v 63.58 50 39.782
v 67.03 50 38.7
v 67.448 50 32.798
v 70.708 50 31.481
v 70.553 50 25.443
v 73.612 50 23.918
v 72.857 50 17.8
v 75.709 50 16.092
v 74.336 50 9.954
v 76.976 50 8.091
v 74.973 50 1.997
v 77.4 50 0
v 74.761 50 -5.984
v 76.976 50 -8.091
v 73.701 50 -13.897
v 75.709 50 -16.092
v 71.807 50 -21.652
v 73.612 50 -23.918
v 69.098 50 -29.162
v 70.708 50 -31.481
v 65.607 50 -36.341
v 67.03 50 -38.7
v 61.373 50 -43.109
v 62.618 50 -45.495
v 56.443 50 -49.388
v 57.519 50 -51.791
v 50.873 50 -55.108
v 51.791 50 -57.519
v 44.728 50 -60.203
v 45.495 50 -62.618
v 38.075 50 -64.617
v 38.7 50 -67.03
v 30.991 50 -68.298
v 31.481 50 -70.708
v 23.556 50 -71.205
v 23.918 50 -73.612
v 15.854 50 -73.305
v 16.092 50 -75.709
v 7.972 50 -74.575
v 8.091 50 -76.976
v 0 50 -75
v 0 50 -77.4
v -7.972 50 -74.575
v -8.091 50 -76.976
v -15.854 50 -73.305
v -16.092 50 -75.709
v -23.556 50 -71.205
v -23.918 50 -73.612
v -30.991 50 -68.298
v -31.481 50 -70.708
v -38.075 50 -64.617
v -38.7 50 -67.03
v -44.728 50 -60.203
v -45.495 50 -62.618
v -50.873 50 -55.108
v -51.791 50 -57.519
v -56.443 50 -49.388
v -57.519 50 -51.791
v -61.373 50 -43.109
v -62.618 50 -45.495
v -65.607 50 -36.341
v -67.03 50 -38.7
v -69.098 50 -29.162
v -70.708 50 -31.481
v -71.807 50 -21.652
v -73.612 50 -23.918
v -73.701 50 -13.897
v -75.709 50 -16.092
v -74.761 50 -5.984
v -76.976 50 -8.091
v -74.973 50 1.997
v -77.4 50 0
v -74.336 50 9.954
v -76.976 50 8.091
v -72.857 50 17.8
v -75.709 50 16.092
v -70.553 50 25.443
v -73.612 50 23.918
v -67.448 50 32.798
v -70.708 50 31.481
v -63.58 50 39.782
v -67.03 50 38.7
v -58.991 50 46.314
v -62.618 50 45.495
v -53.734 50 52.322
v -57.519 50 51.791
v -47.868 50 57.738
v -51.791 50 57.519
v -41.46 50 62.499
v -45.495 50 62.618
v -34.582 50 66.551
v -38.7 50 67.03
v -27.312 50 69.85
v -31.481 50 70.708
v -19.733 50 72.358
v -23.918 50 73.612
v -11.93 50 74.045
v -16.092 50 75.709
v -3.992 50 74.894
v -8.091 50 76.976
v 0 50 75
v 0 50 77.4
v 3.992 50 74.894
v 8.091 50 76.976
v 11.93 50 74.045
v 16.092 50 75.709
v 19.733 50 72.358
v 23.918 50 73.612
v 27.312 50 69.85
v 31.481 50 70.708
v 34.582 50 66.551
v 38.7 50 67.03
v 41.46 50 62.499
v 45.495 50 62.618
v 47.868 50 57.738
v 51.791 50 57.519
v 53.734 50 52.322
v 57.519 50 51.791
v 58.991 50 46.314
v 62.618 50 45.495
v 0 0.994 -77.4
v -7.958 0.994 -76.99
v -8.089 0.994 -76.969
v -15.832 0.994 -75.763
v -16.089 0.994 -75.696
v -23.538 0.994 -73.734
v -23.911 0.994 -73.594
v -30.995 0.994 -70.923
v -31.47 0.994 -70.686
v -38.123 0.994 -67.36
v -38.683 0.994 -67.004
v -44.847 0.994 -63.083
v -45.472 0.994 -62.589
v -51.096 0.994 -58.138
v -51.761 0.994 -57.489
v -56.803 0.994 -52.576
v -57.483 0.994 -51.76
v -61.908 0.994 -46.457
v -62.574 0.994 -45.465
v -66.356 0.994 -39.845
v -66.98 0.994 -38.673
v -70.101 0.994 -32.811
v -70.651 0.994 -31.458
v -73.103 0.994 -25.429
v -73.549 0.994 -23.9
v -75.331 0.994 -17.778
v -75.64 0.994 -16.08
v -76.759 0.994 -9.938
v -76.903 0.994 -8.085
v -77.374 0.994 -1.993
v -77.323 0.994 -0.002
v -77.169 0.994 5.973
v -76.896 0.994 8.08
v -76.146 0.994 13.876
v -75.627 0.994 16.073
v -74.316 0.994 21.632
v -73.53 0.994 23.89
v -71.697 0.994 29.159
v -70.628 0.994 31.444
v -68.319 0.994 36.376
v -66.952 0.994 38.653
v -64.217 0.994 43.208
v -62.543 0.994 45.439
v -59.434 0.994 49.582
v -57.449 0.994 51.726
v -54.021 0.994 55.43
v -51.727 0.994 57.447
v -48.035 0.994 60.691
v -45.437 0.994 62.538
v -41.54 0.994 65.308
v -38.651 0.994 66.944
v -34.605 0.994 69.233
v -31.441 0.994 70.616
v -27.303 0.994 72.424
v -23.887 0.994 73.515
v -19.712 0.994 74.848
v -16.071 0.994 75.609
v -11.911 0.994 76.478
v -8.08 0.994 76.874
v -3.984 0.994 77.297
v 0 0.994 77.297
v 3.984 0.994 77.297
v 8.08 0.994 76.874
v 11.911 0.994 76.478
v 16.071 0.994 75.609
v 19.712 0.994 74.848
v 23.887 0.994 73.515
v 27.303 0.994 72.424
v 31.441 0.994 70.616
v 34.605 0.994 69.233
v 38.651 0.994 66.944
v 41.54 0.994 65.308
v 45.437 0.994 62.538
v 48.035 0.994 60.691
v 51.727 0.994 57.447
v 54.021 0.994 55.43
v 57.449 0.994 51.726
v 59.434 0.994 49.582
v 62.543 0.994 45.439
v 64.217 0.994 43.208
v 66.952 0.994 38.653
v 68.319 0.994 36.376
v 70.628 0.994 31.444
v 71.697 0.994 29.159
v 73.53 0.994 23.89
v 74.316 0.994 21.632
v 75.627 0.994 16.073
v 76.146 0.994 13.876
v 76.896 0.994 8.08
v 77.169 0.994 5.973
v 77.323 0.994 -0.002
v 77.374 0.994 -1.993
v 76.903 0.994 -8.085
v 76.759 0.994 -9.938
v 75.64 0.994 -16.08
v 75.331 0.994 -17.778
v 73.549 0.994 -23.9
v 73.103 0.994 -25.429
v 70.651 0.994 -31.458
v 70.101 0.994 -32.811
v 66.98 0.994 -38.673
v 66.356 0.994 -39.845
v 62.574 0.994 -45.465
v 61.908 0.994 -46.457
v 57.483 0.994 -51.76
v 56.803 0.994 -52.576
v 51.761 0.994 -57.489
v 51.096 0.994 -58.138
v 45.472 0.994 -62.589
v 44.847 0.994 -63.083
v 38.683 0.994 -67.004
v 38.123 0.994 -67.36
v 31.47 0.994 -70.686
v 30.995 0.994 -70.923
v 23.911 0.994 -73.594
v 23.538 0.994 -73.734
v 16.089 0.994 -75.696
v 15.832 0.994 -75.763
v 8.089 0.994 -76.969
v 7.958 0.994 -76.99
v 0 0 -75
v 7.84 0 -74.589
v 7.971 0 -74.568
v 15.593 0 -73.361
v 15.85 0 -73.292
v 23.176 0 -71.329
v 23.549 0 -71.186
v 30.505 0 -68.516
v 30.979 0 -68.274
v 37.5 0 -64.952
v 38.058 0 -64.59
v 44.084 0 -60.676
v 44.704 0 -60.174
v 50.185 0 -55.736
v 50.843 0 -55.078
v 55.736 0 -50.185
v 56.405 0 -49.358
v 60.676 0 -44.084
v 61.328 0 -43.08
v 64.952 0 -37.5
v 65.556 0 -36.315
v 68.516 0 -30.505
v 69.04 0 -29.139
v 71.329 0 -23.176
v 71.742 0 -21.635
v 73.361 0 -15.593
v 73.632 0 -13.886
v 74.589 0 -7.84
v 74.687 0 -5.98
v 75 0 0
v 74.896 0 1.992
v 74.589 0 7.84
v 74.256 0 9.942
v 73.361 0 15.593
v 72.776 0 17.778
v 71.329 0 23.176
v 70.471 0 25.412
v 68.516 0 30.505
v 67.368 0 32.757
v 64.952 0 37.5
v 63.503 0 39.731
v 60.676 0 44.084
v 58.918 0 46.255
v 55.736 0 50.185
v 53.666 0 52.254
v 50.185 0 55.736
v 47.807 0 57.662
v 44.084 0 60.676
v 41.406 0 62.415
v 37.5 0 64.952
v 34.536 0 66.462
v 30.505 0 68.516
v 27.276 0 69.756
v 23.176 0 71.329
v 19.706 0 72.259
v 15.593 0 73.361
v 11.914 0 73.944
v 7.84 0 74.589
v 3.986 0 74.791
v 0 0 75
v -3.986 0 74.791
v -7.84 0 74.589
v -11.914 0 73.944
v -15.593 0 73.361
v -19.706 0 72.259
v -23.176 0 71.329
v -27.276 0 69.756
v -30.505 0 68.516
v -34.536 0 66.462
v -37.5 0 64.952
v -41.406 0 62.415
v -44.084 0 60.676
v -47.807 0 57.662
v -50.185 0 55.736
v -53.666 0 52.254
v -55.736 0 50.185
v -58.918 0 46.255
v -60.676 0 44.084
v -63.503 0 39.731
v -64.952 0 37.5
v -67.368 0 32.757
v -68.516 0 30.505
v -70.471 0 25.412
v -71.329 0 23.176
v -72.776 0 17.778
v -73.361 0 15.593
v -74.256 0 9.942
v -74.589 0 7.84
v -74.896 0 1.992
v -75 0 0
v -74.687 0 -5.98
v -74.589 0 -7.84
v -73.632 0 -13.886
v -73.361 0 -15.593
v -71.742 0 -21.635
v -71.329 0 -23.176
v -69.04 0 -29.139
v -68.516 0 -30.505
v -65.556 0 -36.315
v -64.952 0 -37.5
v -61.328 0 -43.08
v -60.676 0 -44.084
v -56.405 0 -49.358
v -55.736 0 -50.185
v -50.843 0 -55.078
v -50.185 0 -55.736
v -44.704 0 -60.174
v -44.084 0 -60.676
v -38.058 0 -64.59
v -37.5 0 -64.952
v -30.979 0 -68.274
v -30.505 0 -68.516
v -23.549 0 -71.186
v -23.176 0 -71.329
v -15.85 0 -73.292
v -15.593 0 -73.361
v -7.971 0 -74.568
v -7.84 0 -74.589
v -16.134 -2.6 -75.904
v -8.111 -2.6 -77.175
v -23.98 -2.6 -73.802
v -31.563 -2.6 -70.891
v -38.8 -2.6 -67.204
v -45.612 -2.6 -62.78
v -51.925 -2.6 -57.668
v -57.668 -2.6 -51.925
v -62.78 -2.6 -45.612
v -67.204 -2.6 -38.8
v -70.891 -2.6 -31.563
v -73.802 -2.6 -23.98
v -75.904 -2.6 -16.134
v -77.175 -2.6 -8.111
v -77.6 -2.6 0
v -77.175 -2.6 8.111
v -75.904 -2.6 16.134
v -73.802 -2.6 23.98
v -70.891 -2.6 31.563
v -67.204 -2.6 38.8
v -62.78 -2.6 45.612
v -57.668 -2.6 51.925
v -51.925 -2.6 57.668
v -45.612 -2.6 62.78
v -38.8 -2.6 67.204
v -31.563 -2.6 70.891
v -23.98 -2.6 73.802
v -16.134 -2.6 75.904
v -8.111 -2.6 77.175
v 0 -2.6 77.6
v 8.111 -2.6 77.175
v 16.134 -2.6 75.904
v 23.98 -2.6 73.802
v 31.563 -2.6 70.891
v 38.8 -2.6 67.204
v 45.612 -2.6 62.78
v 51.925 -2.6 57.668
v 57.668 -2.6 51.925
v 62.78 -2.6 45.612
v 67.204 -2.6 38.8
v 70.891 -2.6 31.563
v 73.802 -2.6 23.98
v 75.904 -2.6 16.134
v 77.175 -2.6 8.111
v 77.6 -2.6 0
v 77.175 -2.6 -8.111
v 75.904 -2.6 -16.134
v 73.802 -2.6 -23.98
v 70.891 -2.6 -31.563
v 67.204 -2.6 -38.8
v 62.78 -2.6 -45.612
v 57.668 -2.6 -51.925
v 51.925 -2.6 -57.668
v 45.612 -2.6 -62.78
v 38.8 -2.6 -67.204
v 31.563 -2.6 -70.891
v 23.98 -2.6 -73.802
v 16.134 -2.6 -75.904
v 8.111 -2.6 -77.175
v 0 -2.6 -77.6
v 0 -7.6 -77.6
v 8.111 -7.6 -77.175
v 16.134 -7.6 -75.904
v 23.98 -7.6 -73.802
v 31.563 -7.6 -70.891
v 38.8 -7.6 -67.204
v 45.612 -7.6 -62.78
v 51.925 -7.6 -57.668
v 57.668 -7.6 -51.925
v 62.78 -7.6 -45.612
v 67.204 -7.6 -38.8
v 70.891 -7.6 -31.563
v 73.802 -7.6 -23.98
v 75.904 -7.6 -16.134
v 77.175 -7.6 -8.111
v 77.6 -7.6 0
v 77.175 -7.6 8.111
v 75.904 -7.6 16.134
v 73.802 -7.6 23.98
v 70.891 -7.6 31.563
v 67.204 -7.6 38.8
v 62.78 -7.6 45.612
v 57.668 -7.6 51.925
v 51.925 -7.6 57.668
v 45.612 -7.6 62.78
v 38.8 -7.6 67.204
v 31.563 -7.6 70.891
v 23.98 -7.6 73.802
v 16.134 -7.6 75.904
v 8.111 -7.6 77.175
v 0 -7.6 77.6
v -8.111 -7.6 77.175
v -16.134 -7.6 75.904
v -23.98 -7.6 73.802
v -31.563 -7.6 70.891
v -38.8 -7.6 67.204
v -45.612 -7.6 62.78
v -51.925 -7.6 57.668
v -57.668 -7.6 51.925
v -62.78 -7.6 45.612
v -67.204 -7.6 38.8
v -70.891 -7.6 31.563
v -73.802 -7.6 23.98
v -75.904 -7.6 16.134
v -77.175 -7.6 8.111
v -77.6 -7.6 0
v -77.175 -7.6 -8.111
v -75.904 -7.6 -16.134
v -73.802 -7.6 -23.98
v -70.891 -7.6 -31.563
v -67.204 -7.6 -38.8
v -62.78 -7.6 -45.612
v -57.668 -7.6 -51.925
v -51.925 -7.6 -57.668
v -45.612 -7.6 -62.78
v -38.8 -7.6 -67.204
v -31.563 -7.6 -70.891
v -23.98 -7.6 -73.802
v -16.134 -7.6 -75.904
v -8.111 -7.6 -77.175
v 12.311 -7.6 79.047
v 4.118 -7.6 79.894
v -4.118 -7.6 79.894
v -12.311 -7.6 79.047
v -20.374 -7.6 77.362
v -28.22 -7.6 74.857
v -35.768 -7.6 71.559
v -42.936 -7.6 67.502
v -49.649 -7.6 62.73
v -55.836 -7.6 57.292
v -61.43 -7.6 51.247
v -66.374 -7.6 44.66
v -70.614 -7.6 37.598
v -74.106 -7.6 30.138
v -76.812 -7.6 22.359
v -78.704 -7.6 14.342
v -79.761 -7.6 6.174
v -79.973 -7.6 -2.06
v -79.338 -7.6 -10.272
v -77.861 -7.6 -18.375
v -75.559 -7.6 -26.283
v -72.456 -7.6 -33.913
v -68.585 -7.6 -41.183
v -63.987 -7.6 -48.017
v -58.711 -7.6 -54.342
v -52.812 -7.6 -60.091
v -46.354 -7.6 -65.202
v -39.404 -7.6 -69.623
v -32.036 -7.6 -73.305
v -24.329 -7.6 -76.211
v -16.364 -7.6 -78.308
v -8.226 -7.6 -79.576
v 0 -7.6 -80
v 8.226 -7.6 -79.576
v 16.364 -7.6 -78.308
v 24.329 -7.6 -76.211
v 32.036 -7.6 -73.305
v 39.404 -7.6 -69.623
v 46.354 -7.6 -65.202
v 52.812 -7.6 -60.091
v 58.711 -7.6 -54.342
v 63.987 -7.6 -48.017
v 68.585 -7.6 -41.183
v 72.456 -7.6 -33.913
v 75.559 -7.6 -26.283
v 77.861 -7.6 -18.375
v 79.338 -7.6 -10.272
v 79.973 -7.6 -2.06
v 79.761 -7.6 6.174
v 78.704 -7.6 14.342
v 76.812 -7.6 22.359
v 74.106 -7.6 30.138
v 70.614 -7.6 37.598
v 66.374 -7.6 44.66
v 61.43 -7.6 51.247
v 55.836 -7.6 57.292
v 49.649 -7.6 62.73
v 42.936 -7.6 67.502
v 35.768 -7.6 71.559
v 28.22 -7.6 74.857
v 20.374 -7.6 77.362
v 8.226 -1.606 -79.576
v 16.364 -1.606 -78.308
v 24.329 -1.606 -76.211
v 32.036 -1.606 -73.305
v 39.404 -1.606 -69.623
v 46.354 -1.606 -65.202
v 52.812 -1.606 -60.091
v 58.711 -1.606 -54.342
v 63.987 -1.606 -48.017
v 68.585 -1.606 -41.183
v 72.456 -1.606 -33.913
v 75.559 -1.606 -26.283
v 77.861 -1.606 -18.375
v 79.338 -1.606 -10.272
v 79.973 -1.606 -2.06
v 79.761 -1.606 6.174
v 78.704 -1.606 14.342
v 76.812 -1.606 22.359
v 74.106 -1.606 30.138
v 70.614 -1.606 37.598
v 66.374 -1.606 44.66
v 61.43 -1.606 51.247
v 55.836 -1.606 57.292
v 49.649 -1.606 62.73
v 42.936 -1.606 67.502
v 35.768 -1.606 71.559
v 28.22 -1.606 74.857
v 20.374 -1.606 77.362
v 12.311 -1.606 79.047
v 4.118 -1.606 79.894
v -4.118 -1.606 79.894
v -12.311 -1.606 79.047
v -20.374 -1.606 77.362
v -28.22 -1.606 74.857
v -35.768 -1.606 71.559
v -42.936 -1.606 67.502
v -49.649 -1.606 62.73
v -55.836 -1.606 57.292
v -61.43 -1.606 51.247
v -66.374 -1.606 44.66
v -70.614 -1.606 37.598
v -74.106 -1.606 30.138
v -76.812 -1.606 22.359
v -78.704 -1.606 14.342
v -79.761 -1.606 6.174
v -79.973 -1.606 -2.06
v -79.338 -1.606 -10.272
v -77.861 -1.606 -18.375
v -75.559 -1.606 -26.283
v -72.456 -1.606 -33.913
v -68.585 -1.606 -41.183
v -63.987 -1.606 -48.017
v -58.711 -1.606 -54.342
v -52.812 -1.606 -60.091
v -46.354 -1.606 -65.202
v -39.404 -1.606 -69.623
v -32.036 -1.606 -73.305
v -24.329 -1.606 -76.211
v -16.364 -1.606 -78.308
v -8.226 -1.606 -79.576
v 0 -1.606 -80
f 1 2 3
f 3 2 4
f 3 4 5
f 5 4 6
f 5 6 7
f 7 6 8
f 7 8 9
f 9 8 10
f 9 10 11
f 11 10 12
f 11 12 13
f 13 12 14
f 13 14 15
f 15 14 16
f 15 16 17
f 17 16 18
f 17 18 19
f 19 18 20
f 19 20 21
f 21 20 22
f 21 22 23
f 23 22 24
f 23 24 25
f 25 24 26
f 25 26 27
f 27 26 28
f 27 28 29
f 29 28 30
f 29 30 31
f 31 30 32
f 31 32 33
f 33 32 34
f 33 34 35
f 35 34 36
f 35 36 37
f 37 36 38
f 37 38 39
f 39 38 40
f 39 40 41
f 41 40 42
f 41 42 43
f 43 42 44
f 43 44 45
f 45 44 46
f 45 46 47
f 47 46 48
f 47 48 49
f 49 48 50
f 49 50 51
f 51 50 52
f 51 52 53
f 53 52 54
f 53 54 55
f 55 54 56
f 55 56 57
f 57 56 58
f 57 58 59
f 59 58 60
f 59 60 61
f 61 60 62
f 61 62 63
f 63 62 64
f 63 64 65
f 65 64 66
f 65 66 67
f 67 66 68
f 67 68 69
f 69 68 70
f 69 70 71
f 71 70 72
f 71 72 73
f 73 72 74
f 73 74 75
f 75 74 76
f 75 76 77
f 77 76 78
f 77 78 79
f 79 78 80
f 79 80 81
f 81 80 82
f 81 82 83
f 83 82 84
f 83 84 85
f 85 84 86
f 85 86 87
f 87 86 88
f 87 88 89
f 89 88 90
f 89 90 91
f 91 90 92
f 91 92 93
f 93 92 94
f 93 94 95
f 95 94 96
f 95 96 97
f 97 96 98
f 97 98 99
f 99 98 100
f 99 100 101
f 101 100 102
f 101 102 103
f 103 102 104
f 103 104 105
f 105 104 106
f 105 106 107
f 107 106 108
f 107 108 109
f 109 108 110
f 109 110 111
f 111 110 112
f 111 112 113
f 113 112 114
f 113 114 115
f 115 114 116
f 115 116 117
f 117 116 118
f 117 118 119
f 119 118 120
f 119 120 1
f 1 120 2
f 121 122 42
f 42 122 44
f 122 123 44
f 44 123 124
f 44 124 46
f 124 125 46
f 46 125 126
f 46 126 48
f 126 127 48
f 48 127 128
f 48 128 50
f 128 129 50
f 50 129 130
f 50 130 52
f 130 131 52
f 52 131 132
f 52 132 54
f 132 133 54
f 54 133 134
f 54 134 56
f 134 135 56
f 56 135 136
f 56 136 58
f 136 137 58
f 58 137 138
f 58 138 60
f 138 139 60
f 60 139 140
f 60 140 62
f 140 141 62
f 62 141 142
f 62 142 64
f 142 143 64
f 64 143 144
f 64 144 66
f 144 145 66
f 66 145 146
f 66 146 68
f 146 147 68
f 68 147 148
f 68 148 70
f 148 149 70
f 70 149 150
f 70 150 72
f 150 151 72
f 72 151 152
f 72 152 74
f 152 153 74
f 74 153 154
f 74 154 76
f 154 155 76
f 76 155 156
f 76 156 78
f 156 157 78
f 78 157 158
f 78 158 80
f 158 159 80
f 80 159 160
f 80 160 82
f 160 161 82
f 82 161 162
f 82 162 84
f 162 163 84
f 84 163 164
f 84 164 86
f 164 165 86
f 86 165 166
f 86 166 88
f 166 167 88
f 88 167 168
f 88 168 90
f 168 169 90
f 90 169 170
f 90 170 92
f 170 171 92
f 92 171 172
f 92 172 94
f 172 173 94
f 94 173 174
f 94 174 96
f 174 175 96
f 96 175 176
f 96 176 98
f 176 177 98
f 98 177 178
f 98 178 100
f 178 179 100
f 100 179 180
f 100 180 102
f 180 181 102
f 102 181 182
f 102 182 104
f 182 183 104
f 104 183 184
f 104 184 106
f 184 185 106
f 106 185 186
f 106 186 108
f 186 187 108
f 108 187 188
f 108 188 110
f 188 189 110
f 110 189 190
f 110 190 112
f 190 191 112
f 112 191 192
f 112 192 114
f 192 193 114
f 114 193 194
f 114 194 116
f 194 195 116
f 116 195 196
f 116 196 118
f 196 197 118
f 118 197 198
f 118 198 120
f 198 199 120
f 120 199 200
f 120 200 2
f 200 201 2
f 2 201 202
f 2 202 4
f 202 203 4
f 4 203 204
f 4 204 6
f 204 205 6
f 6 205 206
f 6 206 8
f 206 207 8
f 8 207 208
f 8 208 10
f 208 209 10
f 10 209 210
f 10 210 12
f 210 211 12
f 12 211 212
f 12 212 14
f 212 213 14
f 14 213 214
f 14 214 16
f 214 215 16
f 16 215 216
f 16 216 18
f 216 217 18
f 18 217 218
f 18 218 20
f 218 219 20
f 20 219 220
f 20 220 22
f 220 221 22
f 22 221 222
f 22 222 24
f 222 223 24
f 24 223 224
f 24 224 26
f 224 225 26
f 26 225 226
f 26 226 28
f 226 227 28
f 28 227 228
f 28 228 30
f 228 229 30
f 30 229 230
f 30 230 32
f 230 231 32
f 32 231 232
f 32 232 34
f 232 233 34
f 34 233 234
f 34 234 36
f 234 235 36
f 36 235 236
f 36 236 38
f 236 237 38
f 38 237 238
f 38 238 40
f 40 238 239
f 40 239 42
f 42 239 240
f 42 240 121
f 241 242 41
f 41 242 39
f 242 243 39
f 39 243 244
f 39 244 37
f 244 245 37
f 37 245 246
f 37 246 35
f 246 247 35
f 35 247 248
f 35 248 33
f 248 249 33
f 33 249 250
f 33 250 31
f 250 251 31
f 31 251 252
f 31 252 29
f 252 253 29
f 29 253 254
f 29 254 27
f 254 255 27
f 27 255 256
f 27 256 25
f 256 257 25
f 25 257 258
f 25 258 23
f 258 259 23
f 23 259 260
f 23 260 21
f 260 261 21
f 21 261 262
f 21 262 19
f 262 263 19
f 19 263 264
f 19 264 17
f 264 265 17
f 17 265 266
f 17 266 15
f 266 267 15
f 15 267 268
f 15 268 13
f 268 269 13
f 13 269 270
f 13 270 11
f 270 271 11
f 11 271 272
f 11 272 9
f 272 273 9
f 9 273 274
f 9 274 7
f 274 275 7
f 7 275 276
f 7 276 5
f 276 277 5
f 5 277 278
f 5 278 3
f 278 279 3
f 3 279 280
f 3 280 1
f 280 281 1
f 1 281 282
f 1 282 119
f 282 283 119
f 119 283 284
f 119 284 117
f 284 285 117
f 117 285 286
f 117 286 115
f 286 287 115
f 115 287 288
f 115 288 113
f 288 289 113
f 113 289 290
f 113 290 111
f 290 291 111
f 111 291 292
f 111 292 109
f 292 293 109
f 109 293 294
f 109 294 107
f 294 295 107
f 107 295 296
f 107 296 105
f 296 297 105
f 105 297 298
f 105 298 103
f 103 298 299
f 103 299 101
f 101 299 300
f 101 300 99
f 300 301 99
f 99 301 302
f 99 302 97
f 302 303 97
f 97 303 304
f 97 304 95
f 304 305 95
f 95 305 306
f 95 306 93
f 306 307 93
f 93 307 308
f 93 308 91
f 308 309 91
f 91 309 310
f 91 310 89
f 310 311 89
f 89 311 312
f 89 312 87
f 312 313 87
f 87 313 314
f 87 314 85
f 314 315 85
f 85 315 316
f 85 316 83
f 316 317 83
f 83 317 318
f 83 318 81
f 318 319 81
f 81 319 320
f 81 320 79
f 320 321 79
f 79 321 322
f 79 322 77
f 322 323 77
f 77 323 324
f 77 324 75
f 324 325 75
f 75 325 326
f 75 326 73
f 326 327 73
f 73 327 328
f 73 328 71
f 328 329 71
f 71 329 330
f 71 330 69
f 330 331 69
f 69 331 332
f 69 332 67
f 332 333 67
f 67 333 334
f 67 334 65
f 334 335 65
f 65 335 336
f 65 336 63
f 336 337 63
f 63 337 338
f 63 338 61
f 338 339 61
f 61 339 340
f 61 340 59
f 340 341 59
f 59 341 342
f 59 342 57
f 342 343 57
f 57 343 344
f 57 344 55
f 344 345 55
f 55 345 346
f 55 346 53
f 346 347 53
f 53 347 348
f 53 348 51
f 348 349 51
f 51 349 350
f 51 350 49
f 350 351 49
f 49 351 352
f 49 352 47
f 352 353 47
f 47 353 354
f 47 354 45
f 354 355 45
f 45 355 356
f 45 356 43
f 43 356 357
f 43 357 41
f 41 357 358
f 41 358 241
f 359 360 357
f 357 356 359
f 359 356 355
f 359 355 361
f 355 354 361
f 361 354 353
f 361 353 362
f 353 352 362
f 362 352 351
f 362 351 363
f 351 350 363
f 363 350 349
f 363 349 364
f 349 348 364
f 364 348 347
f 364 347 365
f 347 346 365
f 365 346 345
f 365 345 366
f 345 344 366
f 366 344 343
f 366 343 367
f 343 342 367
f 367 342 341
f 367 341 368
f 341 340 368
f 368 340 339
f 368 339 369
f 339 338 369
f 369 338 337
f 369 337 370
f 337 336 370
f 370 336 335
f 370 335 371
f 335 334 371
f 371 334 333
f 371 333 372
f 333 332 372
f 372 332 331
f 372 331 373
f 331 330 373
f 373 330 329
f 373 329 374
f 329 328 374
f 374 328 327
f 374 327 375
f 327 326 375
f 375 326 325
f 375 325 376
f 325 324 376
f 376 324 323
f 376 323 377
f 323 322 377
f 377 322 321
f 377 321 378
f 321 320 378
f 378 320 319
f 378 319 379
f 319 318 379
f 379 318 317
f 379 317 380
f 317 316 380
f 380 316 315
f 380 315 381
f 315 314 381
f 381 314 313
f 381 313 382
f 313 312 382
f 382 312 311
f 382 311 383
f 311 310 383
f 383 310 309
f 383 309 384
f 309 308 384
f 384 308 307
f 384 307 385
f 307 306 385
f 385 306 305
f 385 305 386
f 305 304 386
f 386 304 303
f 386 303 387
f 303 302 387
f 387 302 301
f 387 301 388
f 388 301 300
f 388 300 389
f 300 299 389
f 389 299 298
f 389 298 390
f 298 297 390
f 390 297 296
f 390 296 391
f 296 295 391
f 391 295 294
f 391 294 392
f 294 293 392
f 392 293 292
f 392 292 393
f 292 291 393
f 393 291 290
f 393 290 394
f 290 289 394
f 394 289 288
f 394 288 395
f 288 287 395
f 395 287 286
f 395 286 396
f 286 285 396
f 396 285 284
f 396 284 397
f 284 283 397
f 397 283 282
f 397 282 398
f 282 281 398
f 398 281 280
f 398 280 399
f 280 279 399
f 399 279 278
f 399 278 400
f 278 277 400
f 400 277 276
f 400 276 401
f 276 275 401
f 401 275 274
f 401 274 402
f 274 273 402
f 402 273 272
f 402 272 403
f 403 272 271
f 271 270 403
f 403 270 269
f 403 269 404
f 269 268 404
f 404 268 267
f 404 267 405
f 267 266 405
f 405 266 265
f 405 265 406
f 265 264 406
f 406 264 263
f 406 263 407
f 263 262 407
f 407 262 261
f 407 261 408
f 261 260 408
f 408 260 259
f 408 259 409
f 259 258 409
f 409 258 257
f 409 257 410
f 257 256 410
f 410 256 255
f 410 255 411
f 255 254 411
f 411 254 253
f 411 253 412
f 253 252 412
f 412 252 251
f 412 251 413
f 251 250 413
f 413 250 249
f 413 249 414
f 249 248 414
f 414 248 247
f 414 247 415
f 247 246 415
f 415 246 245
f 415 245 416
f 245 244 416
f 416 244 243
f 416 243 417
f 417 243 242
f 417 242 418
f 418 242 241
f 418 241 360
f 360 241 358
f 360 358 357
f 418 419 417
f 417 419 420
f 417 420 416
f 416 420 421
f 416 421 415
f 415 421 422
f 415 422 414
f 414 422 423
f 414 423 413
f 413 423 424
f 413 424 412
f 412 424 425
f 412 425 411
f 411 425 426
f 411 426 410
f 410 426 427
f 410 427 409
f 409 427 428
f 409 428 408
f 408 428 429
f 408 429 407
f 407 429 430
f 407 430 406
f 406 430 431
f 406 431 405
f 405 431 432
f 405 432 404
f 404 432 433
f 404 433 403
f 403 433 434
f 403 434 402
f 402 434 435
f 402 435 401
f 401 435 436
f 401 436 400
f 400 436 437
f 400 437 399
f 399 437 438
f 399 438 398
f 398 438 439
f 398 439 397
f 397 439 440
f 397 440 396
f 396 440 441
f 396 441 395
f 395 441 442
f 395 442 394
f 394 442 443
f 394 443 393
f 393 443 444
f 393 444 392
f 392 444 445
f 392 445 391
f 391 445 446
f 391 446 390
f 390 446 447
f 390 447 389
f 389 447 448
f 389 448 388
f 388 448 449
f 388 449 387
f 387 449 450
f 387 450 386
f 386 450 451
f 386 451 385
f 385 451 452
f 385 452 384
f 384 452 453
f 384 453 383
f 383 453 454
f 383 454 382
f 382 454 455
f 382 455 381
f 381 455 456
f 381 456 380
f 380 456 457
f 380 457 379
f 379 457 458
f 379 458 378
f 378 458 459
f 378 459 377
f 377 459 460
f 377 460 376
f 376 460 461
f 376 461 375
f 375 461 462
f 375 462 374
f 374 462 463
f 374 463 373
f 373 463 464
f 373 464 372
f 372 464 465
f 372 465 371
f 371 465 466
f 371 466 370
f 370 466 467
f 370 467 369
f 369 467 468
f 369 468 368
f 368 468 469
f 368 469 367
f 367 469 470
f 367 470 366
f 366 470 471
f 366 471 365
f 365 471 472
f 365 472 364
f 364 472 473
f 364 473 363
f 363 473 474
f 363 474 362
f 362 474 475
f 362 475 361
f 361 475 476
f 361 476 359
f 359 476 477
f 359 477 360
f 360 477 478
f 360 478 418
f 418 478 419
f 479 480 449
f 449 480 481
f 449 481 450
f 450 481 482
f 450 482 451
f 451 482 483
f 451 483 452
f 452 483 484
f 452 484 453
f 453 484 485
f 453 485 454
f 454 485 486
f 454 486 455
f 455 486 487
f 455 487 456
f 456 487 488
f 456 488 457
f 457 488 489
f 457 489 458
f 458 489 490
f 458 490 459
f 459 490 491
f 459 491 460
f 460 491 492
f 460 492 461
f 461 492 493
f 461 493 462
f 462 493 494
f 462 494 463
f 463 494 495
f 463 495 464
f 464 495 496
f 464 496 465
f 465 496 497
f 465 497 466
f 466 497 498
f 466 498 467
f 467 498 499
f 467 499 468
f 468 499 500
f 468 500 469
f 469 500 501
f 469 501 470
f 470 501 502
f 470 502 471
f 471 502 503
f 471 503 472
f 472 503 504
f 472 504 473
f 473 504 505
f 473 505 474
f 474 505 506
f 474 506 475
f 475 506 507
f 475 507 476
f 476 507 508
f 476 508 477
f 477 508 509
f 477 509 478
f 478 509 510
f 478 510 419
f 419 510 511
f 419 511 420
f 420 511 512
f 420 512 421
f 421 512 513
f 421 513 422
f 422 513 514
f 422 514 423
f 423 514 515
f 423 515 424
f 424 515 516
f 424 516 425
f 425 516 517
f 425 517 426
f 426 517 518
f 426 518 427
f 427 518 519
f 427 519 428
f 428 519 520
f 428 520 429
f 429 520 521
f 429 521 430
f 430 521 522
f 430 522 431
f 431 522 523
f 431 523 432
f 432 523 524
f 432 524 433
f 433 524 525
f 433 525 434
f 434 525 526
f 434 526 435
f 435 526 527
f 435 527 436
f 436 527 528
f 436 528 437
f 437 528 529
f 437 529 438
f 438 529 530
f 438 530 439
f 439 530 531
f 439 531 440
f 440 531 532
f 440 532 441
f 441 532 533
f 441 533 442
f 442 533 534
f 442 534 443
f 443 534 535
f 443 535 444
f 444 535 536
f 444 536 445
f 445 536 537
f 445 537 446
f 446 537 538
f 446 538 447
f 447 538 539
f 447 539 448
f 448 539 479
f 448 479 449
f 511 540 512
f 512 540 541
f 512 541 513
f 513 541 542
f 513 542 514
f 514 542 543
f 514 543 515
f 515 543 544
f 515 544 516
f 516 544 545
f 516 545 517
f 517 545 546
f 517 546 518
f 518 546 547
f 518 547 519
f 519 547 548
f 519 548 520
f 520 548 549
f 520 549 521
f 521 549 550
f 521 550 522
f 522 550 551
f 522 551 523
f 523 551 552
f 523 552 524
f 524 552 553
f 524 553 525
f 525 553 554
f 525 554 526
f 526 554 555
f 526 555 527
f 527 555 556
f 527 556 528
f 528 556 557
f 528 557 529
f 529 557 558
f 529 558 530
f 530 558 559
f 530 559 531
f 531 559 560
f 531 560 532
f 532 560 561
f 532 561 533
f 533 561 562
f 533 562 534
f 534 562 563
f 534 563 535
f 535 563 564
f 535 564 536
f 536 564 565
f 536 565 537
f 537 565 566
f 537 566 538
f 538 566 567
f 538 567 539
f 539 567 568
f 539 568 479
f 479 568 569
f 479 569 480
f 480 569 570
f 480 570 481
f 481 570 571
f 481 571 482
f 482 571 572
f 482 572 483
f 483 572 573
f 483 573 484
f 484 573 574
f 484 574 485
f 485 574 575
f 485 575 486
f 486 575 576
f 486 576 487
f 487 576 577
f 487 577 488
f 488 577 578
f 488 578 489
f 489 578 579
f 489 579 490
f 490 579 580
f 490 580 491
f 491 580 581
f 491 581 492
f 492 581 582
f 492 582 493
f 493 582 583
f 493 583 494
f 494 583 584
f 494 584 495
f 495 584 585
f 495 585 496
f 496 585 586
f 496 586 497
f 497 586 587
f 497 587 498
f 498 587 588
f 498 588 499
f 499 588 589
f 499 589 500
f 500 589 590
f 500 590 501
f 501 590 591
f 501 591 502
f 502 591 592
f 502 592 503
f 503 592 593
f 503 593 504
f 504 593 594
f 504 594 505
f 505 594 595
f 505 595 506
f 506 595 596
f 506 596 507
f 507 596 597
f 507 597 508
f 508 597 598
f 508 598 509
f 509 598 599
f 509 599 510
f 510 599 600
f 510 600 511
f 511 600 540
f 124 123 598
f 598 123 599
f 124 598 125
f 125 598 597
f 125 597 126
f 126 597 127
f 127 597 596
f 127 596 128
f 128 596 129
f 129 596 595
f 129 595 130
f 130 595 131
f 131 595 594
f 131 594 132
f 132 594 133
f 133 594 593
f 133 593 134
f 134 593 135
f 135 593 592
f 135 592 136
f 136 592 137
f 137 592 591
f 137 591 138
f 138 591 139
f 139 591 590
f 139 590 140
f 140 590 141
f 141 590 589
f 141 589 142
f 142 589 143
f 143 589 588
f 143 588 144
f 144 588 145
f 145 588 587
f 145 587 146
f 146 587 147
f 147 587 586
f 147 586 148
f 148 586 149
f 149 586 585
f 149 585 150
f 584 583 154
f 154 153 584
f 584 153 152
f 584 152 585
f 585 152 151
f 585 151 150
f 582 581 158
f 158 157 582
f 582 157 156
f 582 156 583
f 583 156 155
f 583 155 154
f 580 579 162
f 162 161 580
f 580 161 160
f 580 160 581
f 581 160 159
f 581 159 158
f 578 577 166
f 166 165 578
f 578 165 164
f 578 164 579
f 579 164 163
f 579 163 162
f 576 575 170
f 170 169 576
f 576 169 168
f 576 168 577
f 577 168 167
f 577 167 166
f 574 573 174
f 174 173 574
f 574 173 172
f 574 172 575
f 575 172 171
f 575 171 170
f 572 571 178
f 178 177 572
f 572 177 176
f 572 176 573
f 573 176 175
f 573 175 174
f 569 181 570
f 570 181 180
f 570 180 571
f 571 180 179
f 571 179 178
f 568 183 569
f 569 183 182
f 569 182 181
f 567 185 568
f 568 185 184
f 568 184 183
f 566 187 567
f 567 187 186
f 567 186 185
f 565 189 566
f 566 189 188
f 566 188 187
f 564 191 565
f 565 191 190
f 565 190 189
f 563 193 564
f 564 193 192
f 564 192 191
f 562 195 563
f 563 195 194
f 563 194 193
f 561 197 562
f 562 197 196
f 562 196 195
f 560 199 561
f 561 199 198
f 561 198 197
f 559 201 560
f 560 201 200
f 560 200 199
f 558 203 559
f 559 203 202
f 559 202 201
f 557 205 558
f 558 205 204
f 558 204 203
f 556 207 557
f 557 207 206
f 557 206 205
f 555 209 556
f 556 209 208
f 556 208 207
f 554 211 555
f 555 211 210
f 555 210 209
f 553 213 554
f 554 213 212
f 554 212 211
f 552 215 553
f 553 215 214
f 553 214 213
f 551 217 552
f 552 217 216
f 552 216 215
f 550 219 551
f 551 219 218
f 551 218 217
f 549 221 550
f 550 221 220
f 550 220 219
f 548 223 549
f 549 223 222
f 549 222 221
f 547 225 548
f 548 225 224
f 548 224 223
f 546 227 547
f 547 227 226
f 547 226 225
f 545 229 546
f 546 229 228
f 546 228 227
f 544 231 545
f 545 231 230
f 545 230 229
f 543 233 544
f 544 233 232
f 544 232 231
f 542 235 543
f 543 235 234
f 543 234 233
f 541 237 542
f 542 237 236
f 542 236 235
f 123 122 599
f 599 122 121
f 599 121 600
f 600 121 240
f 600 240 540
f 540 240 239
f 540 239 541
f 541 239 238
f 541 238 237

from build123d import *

# Parameters (mm, degrees)
SKETCH1_R           = 77.4
SKETCH1_R_2         = 75
BOSS_EXTRUDE1_DEPTH = 50


with BuildPart() as part:
    # Sketch1 → Boss-Extrude1 (new body)
    with BuildSketch(Plane(origin=(0, 0, 0), x_dir=(1, 0, 0), z_dir=(0, 1, 0))):
        with Locations(Location((0, 0, 0), (0, 0, 270))):
            Circle(SKETCH1_R)
        with Locations(Location((0, 0, 0), (0, 0, 270))):
            Circle(SKETCH1_R_2, mode=Mode.SUBTRACT)
    extrude(amount=BOSS_EXTRUDE1_DEPTH)

    # Sketch4 → Revolve1 (revolve)
    with BuildSketch(Plane.XY, mode=Mode.PRIVATE) as revolve1_sk:
        Polygon((75, 0), (77.6, -2.6), (77.6, -7.6), (80, -7.6), (80, -1.60588745), (77.4, 0.99411255), (77.4, 0), align=None)
    revolve(revolve1_sk.sketch.rotate(Axis((0, 0, 0), (0, 1, 0)), 90), axis=Axis((0, 0, 0), (0, 1, 0)))


solid = part.part
